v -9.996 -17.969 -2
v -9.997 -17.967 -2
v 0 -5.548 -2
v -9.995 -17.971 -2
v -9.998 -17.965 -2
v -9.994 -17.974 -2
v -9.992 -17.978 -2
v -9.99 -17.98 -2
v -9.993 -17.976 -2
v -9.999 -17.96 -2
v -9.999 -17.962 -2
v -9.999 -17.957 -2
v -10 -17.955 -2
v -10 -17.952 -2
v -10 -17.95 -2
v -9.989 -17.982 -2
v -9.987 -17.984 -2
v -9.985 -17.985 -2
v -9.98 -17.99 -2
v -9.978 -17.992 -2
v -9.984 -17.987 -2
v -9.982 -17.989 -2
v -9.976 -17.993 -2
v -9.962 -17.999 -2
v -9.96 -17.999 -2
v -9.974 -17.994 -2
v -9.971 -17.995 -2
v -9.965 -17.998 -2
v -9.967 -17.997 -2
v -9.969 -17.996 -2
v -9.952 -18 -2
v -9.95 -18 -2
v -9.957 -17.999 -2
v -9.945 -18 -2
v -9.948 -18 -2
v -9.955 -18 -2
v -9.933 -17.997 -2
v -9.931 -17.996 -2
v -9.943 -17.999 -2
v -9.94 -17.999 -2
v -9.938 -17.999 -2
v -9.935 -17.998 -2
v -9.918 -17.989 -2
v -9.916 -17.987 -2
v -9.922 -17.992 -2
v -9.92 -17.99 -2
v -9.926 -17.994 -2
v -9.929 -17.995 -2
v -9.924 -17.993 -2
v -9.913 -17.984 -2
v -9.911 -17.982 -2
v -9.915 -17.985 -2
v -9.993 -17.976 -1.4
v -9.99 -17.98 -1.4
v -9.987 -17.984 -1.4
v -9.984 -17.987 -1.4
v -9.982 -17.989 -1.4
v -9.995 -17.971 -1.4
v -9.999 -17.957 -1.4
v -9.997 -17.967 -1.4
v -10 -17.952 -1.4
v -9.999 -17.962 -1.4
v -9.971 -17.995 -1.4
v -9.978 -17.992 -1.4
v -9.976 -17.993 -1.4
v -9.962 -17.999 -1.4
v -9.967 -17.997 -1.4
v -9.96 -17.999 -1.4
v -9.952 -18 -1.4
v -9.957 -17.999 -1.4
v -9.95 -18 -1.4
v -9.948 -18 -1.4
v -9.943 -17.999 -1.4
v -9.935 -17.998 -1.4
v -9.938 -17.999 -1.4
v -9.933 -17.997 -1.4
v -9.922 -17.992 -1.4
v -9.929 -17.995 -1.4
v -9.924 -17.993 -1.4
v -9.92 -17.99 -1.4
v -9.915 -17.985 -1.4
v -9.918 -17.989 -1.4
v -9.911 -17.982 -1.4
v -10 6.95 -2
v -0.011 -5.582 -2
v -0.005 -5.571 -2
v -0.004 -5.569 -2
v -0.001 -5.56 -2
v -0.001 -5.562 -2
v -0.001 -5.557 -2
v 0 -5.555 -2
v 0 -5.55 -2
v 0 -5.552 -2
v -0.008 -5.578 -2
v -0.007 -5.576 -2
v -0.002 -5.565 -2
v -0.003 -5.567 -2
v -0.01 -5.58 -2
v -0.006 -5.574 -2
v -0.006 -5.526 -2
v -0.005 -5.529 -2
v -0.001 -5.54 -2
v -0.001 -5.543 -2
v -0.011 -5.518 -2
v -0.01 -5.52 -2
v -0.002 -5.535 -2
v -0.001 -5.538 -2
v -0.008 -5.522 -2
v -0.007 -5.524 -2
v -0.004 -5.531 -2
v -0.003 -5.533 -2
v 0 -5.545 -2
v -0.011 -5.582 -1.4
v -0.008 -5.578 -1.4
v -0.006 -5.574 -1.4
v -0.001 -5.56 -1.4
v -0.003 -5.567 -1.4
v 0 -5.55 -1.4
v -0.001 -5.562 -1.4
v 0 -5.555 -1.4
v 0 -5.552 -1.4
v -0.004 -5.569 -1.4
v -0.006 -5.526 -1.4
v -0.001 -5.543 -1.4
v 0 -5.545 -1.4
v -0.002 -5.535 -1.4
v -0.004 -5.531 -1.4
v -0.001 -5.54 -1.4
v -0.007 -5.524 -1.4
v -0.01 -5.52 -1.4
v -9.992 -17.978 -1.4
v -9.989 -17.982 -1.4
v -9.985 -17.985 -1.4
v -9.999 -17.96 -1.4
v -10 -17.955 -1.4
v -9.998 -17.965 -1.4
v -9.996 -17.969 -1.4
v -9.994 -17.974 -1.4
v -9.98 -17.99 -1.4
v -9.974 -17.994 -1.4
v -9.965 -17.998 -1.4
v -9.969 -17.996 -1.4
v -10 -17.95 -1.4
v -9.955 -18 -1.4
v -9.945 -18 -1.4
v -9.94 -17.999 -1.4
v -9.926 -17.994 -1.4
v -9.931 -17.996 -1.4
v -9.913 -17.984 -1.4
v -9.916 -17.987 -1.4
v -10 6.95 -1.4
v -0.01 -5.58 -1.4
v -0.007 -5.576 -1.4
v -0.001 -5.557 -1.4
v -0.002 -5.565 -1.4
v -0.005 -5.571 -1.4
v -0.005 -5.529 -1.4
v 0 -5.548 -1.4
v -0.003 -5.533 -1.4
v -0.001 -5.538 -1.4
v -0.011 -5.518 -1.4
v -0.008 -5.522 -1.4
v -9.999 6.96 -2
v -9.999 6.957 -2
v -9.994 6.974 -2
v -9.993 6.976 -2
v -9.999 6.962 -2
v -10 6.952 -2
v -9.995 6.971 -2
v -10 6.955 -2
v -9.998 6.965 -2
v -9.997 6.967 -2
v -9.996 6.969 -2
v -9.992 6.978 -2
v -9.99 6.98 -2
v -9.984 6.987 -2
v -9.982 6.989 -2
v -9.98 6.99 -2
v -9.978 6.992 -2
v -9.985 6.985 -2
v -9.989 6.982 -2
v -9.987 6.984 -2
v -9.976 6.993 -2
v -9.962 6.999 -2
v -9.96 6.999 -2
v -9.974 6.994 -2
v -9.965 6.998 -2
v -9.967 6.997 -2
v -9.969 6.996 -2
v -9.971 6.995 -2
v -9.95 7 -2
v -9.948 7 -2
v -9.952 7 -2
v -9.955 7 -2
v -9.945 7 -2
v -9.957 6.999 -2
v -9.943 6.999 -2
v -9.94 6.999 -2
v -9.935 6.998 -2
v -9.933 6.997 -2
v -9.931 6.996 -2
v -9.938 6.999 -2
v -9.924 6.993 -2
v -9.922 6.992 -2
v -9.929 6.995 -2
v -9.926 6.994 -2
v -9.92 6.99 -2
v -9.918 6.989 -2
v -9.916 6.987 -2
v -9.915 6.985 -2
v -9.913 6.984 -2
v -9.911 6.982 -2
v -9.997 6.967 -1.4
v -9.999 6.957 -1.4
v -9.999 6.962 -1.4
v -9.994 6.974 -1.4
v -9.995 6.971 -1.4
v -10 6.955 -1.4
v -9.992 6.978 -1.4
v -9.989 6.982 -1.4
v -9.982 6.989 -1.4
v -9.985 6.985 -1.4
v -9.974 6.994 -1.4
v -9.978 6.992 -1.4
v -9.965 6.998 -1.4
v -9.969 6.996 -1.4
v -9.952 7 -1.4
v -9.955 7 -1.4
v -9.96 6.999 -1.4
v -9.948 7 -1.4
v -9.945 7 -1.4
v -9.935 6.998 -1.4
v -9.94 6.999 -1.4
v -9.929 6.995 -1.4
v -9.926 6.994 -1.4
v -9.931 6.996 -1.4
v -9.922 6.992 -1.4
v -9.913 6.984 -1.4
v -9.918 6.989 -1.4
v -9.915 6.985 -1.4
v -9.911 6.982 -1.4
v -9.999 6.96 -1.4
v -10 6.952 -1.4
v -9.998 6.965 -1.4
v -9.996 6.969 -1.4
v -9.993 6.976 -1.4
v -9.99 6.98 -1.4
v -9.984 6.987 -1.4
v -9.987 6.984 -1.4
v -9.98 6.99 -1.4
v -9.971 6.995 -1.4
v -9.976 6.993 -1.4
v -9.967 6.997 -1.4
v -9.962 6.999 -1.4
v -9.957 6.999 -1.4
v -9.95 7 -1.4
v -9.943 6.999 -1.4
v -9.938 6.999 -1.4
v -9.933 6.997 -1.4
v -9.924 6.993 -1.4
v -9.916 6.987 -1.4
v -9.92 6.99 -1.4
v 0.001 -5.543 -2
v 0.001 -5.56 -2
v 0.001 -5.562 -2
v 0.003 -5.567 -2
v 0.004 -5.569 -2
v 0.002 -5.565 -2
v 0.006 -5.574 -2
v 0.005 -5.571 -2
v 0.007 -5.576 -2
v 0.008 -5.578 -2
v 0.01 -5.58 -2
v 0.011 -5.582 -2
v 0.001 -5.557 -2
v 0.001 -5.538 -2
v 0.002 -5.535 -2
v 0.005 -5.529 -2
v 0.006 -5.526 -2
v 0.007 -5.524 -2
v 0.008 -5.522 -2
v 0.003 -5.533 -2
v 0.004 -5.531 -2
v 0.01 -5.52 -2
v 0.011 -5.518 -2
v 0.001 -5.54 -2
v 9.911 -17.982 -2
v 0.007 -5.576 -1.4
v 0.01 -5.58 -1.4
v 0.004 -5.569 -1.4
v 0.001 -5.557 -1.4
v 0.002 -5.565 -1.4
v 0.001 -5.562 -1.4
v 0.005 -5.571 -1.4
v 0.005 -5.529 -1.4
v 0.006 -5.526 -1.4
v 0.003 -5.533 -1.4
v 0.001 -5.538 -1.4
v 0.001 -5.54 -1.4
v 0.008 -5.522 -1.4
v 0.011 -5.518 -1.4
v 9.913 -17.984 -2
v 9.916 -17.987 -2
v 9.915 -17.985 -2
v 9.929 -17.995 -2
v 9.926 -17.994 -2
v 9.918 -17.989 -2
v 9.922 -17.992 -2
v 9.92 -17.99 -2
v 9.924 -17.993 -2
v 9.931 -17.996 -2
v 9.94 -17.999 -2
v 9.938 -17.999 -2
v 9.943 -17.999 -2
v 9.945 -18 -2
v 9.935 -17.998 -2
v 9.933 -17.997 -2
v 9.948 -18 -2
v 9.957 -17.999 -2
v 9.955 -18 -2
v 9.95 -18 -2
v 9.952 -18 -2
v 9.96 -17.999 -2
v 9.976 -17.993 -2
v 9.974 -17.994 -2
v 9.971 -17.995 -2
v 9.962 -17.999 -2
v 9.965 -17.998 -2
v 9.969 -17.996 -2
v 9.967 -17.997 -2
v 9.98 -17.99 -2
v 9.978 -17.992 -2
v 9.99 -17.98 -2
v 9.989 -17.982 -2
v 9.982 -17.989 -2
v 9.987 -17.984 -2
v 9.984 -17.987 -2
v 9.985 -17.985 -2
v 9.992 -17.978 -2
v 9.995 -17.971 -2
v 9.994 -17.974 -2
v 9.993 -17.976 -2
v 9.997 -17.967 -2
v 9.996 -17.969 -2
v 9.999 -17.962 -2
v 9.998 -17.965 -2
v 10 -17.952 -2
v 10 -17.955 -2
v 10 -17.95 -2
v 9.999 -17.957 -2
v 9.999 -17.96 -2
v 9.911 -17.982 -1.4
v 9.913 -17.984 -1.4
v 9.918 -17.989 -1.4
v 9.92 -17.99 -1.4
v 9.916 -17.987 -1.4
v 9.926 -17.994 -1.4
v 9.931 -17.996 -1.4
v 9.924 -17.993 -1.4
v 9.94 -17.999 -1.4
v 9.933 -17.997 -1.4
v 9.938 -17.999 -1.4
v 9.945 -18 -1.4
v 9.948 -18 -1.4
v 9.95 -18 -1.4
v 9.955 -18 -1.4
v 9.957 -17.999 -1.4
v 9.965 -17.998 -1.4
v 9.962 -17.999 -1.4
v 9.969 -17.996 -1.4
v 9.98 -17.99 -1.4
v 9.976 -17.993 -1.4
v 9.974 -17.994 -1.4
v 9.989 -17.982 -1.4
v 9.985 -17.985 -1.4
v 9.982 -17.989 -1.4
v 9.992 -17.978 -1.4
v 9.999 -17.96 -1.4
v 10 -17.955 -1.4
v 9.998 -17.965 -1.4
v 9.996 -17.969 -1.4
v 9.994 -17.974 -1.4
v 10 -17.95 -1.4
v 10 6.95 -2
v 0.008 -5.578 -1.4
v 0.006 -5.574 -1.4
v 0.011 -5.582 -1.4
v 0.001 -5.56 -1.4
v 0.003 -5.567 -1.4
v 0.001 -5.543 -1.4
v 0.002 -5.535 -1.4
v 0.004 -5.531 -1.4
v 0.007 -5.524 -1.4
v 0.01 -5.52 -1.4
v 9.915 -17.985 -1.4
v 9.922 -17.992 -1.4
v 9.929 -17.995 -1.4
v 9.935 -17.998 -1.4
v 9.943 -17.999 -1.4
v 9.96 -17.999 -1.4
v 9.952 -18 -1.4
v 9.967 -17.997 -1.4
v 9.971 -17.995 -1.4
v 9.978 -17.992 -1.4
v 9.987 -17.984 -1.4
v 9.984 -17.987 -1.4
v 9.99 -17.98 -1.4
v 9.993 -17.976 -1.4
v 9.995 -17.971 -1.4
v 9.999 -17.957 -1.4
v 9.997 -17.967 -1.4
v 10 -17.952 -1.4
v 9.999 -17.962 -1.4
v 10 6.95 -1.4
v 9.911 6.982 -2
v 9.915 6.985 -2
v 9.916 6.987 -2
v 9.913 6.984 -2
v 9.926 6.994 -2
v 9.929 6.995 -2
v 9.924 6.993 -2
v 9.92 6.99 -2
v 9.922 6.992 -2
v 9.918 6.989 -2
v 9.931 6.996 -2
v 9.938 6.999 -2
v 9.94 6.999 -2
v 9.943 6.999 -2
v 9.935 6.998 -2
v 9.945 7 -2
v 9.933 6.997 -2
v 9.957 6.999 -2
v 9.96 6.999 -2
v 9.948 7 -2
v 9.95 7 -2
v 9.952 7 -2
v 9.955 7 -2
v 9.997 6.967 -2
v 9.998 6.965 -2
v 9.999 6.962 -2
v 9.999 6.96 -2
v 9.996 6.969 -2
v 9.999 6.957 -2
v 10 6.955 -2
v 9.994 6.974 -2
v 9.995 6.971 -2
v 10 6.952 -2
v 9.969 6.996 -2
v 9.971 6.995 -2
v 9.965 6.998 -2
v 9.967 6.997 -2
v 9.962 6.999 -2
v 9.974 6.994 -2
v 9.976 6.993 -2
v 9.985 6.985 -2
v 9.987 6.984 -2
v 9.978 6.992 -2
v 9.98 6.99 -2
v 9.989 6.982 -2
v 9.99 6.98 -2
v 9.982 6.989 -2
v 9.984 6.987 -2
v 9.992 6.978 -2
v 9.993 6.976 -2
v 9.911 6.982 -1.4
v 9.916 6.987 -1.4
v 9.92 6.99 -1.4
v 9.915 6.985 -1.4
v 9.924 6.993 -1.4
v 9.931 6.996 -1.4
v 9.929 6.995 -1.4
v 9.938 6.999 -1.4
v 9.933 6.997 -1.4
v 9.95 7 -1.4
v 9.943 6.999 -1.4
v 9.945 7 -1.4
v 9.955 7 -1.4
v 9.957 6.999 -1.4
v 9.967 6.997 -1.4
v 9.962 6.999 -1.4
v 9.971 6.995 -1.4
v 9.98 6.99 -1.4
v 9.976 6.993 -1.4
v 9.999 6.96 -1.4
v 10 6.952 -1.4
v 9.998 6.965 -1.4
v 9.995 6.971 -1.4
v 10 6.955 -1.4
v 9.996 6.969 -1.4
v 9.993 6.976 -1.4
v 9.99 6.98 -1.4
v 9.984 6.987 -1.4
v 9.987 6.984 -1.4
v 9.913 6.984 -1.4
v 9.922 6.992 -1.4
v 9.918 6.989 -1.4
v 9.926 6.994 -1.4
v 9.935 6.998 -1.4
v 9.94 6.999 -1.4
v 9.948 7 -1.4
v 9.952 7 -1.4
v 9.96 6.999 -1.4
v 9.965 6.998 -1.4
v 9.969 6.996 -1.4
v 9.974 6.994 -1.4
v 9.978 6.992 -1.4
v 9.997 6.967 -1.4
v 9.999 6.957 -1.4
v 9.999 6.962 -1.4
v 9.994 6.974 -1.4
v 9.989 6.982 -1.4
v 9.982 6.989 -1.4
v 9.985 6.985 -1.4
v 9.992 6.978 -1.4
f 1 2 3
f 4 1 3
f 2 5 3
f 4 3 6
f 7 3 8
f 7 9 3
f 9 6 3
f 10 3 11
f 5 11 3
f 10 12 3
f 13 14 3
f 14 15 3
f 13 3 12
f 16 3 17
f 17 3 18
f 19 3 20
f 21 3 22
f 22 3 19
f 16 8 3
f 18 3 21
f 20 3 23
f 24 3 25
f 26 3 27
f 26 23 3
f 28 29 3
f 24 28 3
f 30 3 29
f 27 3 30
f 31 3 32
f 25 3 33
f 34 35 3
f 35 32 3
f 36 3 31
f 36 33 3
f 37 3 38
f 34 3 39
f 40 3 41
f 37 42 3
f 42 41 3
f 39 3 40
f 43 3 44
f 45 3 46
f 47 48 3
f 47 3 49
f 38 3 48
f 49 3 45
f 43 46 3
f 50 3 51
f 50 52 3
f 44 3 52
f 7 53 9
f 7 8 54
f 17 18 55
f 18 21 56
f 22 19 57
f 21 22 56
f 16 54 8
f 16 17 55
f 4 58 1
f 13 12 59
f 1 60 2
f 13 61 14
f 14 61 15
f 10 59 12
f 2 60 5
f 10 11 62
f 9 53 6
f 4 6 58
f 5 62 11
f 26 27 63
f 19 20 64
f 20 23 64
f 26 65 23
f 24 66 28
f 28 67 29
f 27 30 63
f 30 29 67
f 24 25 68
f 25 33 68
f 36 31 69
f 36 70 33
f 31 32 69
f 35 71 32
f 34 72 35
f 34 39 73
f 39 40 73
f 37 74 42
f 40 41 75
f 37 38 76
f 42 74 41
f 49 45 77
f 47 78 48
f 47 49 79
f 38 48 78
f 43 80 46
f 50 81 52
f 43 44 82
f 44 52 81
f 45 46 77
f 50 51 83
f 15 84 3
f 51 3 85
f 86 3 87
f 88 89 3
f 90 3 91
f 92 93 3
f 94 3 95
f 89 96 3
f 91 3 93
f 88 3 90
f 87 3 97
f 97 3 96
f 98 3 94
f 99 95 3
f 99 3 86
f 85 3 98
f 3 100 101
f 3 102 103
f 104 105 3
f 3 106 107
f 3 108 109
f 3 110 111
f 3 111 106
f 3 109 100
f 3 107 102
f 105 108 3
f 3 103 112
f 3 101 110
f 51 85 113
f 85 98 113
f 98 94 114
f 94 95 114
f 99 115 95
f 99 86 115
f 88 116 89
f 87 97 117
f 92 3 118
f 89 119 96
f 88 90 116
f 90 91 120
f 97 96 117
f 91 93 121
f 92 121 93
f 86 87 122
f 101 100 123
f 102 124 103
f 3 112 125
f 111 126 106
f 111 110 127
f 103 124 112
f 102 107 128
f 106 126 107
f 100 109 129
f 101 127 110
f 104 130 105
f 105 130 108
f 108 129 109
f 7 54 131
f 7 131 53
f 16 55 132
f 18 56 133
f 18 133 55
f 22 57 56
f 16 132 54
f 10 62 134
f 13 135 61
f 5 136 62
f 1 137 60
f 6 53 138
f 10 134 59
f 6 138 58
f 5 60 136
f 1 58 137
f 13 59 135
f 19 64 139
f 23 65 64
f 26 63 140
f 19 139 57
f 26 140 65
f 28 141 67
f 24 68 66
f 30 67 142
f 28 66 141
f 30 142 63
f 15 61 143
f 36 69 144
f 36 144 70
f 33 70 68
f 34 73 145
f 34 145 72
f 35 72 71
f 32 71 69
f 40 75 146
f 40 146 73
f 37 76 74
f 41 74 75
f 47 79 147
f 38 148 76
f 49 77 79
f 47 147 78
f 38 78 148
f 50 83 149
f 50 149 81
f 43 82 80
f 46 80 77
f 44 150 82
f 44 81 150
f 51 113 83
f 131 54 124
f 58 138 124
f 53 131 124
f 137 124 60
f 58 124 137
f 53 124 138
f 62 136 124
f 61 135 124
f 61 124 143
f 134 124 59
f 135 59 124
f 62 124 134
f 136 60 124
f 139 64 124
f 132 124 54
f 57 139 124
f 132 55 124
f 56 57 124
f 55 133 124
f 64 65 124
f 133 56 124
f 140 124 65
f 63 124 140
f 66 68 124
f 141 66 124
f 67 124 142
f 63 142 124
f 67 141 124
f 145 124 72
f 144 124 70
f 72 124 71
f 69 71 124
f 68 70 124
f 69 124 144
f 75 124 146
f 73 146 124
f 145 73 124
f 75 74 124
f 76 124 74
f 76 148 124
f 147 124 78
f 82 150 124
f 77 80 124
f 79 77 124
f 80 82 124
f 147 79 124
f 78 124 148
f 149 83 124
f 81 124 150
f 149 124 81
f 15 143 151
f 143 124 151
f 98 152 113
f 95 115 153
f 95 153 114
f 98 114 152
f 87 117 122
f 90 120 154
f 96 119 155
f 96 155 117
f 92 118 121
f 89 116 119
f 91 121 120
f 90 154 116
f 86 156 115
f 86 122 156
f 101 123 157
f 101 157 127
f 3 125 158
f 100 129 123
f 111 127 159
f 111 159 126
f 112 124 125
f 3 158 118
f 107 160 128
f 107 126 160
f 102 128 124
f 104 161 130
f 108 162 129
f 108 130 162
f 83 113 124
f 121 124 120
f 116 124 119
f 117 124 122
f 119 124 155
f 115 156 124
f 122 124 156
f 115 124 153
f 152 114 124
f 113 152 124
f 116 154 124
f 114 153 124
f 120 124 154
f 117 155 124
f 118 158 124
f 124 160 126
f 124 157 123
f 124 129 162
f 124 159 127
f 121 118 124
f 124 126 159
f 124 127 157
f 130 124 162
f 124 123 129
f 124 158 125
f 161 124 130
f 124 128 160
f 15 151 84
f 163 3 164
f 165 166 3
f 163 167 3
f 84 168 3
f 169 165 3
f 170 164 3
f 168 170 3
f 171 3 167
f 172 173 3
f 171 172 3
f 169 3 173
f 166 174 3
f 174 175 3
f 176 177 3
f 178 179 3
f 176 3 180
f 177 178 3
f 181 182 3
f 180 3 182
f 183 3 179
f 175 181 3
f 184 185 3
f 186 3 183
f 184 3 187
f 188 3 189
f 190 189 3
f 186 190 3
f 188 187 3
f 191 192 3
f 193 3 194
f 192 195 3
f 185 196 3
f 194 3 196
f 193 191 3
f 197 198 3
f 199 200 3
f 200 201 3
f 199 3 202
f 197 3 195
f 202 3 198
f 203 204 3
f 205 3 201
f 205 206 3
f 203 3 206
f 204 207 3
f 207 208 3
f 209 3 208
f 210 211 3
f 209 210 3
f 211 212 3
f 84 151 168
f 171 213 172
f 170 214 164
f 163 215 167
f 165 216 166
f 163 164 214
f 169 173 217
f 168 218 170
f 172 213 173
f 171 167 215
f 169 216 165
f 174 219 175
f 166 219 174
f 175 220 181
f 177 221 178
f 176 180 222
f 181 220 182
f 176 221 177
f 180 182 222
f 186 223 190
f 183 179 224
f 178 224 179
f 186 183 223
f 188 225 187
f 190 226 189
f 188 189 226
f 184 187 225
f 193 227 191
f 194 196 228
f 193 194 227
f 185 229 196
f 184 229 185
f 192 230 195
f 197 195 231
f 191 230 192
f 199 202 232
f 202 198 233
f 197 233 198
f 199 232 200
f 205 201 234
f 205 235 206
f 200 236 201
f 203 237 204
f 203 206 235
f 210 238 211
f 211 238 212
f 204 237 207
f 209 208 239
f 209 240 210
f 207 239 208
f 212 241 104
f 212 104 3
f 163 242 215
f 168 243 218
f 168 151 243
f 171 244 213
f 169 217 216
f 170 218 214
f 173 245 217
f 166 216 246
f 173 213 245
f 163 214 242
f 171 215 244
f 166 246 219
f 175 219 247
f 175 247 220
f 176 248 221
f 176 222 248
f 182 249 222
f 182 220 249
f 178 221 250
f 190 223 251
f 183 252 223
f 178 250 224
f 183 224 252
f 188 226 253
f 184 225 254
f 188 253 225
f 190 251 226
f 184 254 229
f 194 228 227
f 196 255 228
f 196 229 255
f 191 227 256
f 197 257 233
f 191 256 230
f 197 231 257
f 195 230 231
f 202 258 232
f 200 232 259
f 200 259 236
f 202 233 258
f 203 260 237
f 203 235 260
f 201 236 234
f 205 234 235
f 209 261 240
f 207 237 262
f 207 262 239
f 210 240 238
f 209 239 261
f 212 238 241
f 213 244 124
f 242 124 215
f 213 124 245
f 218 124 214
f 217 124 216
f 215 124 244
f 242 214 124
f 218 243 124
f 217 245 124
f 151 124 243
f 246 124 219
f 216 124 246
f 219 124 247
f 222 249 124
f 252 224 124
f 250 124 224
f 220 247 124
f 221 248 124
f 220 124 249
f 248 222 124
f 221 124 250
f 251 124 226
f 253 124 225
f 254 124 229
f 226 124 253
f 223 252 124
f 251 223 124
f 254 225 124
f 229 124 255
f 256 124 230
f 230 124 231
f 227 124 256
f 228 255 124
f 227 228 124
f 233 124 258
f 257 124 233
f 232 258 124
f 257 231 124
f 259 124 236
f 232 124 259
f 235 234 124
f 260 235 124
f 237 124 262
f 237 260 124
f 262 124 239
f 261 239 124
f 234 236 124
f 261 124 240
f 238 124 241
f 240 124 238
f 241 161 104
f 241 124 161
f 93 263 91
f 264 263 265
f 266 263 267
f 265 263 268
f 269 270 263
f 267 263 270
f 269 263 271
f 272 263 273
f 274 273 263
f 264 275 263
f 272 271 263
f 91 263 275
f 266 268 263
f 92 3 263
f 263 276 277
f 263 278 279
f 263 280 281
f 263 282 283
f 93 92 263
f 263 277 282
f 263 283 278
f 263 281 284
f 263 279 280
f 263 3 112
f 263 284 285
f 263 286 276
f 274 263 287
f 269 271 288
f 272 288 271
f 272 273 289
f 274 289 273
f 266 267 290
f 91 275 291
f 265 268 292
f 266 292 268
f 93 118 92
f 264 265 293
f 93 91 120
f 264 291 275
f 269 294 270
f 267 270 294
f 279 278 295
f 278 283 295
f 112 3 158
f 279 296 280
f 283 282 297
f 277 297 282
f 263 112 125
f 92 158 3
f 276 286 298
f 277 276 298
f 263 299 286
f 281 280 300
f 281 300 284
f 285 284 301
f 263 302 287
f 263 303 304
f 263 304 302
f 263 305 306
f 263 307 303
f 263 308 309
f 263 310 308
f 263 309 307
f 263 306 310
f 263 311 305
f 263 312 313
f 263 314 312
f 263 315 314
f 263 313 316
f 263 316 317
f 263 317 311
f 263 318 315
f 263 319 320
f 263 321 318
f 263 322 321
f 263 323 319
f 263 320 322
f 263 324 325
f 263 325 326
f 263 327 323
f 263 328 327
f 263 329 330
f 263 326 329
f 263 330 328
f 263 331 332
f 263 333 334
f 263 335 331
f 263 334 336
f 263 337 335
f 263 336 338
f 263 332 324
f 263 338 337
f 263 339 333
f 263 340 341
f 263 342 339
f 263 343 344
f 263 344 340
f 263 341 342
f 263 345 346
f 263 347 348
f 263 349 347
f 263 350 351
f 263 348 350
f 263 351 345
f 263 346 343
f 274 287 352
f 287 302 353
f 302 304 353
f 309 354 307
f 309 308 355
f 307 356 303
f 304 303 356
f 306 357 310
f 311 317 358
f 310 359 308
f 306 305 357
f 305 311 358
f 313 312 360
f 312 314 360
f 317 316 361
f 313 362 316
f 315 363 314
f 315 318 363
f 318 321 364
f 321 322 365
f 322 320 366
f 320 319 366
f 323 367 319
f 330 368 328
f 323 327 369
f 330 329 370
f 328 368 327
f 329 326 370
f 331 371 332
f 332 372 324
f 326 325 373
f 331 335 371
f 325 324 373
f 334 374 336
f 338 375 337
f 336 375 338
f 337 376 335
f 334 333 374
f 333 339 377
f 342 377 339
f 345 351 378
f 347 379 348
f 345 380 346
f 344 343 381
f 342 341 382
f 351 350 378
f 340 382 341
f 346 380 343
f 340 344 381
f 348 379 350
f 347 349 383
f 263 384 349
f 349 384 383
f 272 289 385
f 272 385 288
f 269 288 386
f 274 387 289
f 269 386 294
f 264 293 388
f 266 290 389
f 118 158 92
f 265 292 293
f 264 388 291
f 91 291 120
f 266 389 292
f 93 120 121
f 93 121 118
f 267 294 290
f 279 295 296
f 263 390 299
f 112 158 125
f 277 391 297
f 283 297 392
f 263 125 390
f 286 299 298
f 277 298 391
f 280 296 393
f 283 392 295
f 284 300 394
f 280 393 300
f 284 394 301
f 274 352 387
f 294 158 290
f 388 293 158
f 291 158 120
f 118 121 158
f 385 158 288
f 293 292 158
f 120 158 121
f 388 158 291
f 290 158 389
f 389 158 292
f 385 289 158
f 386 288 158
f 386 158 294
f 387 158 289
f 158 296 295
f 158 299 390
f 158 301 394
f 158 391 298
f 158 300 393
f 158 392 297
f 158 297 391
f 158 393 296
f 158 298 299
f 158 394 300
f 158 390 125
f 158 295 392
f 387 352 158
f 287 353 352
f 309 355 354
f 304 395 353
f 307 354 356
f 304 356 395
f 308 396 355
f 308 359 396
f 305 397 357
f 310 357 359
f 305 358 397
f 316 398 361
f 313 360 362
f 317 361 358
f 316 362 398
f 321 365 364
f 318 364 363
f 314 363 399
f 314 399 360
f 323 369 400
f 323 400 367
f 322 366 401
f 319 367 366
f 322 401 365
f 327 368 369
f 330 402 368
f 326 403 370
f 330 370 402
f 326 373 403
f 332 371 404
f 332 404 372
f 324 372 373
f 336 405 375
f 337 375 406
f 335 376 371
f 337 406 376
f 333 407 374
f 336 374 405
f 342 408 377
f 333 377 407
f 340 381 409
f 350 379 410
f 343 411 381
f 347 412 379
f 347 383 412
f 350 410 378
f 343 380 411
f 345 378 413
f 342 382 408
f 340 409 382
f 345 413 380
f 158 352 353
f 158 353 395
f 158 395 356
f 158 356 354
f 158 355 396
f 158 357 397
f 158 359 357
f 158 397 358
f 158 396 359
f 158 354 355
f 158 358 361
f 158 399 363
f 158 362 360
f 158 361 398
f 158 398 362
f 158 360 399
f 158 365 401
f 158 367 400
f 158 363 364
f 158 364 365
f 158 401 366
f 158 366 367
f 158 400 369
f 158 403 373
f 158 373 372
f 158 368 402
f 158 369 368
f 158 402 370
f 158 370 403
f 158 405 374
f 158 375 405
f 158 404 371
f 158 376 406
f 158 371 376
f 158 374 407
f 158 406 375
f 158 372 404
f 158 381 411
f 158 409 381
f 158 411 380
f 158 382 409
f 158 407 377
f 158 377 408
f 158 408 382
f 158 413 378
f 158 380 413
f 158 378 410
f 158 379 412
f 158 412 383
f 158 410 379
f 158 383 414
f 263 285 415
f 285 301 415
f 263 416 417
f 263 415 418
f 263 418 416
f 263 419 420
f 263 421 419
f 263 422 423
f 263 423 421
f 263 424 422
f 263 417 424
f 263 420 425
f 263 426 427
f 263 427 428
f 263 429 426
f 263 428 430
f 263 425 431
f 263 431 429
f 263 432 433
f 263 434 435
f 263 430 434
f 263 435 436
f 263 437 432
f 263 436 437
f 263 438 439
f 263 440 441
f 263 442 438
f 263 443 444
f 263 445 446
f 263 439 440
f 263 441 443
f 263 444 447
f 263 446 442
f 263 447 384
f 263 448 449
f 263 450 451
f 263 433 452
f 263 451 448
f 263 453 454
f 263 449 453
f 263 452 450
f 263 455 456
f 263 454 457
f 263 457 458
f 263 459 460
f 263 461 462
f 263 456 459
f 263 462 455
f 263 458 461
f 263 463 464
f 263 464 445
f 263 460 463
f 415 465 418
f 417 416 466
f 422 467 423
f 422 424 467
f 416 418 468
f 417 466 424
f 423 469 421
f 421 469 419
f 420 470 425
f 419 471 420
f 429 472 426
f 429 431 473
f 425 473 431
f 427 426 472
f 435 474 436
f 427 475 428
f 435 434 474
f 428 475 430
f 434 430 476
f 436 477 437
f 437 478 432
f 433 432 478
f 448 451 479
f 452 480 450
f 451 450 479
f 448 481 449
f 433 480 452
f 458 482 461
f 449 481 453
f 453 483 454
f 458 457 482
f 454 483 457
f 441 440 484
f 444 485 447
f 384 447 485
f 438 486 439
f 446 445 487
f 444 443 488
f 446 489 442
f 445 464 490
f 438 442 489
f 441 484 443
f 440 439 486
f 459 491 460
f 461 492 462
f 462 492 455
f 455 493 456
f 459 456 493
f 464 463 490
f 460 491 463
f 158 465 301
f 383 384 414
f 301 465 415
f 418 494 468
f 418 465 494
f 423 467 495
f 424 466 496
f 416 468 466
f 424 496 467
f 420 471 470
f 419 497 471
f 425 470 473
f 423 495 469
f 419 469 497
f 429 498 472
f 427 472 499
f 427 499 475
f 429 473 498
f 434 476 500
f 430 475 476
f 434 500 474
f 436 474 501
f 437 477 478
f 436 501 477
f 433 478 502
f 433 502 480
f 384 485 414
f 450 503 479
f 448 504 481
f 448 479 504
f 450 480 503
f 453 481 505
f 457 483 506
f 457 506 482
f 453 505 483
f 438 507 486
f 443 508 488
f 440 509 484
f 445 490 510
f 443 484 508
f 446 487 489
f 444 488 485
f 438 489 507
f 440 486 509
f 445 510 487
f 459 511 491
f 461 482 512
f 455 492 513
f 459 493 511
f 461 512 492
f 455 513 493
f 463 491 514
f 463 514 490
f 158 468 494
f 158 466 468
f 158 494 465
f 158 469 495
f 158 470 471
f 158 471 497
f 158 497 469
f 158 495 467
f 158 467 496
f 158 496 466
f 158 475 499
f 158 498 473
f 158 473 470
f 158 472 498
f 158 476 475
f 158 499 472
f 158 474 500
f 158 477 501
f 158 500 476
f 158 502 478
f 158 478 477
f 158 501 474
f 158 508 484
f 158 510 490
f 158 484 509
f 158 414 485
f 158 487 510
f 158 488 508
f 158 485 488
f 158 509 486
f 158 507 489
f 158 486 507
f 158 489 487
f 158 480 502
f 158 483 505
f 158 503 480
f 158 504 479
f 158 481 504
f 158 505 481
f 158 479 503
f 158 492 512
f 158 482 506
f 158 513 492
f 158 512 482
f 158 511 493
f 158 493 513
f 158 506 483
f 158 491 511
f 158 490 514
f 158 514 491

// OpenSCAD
// file: ../parts/train_integrity_body.scad
/* RailEduKit/InteractiveSignallingLaboratory © 2025 by Martin Scheidt and contributors
 * License: CC-BY 4.0 - https://creativecommons.org/licenses/by/4.0/
 * Project description: The Interactive Signalling Laboratory is a tool for training in Rail
 * Applications to enhance the knowledge of control and signalling principles for rail transport systems.
 *
 * Module: train_integrity_body
 */

// Include configuration file
include <../config/global_variables.scad>
include <../config/colors.scad>

thinnest_layer     = 0.2;

coupling_radius    = 13/2;
coupling_depth     = 8;
coupling_cut_pos   = coupling_radius*1/2;
boogie_width       = 20;
coupler_thickness  = 1.5;
lipp_height        = 4;
lipp_width         = coupler_thickness - move_tolerance;
shield_width       = 20;
shield_depth       = 25;
inlay_thickness    = 0.45;
shield_thickness   = 2; // the shield has to be at least 2mm thick. Otherwise the front symbol will be printed badly
inlay_radius       = 10.5/2;

module train_integrity_body() {
	color(BASE_COLOR) union(){
	difference() { // coupling
		// outer ring
		cylinder(h = coupling_depth, r = coupling_radius + move_tolerance / 2 + coupler_thickness);
		// inner ring
		translate([ 0, 0, -coupler_thickness / 2 ])
		cylinder(h = coupling_depth + coupler_thickness, r = coupling_radius + move_tolerance / 2);
		// cutting the lower edge
		translate([ -coupling_radius * 1.3, coupling_cut_pos, -coupler_thickness / 2 ])
		cube([ coupling_radius * 2.6, coupling_radius * 1.2, coupling_depth + coupler_thickness ]);
	}

	union() { // upper board
		// beam
		translate([ -boogie_width / 2, -(coupling_radius + coupler_thickness + move_tolerance / 2), 0 ])
		cube([ boogie_width, coupler_thickness, coupling_depth ]);
		// lipp
		hull() {
			translate([
				-boogie_width / 2, -(coupling_radius + move_tolerance / 2 + coupler_thickness - lipp_width),
				coupling_depth
			])
			cube([ boogie_width, thinnest_layer, lipp_height / 4 ]);
			translate(
			    [ -boogie_width / 2, -(coupling_radius + move_tolerance / 2 + coupler_thickness), coupling_depth ])
			cube([ boogie_width, thinnest_layer, lipp_height ]);
		}
	}

	difference() { // front shield
		translate([ -shield_width / 2, -(shield_depth) / 2 - coupling_radius + 1, -shield_thickness ]) 
		cube([ shield_width, shield_depth, shield_thickness ]);
		translate([ 0, 0, -inlay_thickness ])
		cylinder(h = inlay_thickness, r = inlay_radius);
	}
	}
}

//train_integrity_body();
// file: ../config/colors.scad
/* RailEduKit/InteractiveSignallingLaboratory © 2025 by Martin Scheidt and contributors
 * License: CC-BY 4.0 - https://creativecommons.org/licenses/by/4.0/
 * Project description: The Interactive Signalling Laboratory is a tool for training in Rail
 * Applications to enhance the knowledge of control and signalling principles for rail transport systems.
 *
 * Module: config/colors.scad
 */

// component colors
BASE_COLOR = [0.25, 0.25, 0.25];// lighter black to see the shapes
INDICATOR_COLOR = "white";
ROUTE_COLOR = "blue";

METALLIC_GREY = [0.474, 0.482, 0.482];



// signal colors
ASPECT_CLEAR = "green";
ASPECT_APPROACH = "yellow";
ASPECT_STOP = "red";
// main file
/* RailEduKit/InteractiveSignallingLaboratory © 2025 by Martin Scheidt and contributors
 * License: CC-BY 4.0 - https://creativecommons.org/licenses/by/4.0/
 * Project description: The Interactive Signalling Laboratory is a tool for training in Rail
 * Applications to enhance the knowledge of control and signalling principles for rail transport systems.
 *
 * Module: train_integrity_symbol_rear
 */

// Include configuration file
include <../config/global_variables.scad>
include <../config/colors.scad>

// include common parts
include <../parts/train_integrity_body.scad> // access variables

/* PRINT INSTRUCTION
To print the train integrity you have to export the symbol and the body seperately as STL.
Then you have to select the body STL and the symbol STL and load them TOGETHER at the same time in Bambu Studio.
Thus the two files are positioned at the same place and the symbol fills the holes in the body perfectly.
Then you can select the two parts seperately to color them.
Through this procedure you can print multiple colors in one layer.
 */


module triangle() {
	cylinder_diameter = 0.1;
	hull() {
		translate([ cylinder_diameter / 2, cylinder_diameter / 2, 0 ])
		cylinder(d = cylinder_diameter, h = number_height);
		translate([ cylinder_diameter / 2, shield_depth - cylinder_diameter / 2, 0 ])
		cylinder(d = cylinder_diameter, h = number_height);
		translate([ (shield_width - cylinder_diameter) / 2, (shield_depth - cylinder_diameter) / 2, 0 ])
		cylinder(d = cylinder_diameter, h = number_height);
	}
}

module train_integrity_symbol_rear() {
	color(ASPECT_STOP) union(){
		translate([ -shield_width / 2, -(shield_depth) / 2 - coupling_radius + 1, -shield_thickness ])
		triangle();
		translate([ shield_width / 2, -(shield_depth) / 2 - coupling_radius + 1, -shield_thickness + number_height ])
		rotate([ 0, 180, 0 ])
		triangle();
	}
	
}

train_integrity_symbol_rear();
